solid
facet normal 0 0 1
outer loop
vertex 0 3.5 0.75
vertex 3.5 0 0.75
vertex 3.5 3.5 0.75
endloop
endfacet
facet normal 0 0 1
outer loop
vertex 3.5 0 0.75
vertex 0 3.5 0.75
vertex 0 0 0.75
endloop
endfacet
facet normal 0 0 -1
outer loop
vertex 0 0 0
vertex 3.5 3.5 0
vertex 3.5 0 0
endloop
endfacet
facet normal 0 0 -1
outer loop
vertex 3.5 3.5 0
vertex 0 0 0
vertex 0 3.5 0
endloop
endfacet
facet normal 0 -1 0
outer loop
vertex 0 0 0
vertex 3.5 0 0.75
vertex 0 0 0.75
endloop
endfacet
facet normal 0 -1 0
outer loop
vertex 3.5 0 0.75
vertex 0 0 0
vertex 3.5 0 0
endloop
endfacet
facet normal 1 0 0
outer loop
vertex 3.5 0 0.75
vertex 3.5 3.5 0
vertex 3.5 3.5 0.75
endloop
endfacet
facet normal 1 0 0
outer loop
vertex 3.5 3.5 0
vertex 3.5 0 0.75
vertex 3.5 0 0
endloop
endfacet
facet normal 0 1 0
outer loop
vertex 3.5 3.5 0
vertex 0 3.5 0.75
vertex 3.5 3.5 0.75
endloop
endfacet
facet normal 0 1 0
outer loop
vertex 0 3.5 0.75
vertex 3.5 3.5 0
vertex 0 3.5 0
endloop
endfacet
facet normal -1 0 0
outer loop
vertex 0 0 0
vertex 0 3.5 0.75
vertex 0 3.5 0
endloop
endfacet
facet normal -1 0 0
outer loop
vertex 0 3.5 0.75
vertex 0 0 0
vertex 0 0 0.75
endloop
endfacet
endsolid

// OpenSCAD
/* Warning, this is a very basic generator with a lot of approximation 
input data : [VQFN, N3A, 3.5x3.5x0.75mm, 20, , A, C04-01033A]
generated by com.zoubworld.electronics.cad.model3d.Basic
Date : Sun Feb 15 10:50:49 CET 2026
*/

//body
color("black")
translate([0,0,0])
cube([3.5,3.5,0.75], center=false);
